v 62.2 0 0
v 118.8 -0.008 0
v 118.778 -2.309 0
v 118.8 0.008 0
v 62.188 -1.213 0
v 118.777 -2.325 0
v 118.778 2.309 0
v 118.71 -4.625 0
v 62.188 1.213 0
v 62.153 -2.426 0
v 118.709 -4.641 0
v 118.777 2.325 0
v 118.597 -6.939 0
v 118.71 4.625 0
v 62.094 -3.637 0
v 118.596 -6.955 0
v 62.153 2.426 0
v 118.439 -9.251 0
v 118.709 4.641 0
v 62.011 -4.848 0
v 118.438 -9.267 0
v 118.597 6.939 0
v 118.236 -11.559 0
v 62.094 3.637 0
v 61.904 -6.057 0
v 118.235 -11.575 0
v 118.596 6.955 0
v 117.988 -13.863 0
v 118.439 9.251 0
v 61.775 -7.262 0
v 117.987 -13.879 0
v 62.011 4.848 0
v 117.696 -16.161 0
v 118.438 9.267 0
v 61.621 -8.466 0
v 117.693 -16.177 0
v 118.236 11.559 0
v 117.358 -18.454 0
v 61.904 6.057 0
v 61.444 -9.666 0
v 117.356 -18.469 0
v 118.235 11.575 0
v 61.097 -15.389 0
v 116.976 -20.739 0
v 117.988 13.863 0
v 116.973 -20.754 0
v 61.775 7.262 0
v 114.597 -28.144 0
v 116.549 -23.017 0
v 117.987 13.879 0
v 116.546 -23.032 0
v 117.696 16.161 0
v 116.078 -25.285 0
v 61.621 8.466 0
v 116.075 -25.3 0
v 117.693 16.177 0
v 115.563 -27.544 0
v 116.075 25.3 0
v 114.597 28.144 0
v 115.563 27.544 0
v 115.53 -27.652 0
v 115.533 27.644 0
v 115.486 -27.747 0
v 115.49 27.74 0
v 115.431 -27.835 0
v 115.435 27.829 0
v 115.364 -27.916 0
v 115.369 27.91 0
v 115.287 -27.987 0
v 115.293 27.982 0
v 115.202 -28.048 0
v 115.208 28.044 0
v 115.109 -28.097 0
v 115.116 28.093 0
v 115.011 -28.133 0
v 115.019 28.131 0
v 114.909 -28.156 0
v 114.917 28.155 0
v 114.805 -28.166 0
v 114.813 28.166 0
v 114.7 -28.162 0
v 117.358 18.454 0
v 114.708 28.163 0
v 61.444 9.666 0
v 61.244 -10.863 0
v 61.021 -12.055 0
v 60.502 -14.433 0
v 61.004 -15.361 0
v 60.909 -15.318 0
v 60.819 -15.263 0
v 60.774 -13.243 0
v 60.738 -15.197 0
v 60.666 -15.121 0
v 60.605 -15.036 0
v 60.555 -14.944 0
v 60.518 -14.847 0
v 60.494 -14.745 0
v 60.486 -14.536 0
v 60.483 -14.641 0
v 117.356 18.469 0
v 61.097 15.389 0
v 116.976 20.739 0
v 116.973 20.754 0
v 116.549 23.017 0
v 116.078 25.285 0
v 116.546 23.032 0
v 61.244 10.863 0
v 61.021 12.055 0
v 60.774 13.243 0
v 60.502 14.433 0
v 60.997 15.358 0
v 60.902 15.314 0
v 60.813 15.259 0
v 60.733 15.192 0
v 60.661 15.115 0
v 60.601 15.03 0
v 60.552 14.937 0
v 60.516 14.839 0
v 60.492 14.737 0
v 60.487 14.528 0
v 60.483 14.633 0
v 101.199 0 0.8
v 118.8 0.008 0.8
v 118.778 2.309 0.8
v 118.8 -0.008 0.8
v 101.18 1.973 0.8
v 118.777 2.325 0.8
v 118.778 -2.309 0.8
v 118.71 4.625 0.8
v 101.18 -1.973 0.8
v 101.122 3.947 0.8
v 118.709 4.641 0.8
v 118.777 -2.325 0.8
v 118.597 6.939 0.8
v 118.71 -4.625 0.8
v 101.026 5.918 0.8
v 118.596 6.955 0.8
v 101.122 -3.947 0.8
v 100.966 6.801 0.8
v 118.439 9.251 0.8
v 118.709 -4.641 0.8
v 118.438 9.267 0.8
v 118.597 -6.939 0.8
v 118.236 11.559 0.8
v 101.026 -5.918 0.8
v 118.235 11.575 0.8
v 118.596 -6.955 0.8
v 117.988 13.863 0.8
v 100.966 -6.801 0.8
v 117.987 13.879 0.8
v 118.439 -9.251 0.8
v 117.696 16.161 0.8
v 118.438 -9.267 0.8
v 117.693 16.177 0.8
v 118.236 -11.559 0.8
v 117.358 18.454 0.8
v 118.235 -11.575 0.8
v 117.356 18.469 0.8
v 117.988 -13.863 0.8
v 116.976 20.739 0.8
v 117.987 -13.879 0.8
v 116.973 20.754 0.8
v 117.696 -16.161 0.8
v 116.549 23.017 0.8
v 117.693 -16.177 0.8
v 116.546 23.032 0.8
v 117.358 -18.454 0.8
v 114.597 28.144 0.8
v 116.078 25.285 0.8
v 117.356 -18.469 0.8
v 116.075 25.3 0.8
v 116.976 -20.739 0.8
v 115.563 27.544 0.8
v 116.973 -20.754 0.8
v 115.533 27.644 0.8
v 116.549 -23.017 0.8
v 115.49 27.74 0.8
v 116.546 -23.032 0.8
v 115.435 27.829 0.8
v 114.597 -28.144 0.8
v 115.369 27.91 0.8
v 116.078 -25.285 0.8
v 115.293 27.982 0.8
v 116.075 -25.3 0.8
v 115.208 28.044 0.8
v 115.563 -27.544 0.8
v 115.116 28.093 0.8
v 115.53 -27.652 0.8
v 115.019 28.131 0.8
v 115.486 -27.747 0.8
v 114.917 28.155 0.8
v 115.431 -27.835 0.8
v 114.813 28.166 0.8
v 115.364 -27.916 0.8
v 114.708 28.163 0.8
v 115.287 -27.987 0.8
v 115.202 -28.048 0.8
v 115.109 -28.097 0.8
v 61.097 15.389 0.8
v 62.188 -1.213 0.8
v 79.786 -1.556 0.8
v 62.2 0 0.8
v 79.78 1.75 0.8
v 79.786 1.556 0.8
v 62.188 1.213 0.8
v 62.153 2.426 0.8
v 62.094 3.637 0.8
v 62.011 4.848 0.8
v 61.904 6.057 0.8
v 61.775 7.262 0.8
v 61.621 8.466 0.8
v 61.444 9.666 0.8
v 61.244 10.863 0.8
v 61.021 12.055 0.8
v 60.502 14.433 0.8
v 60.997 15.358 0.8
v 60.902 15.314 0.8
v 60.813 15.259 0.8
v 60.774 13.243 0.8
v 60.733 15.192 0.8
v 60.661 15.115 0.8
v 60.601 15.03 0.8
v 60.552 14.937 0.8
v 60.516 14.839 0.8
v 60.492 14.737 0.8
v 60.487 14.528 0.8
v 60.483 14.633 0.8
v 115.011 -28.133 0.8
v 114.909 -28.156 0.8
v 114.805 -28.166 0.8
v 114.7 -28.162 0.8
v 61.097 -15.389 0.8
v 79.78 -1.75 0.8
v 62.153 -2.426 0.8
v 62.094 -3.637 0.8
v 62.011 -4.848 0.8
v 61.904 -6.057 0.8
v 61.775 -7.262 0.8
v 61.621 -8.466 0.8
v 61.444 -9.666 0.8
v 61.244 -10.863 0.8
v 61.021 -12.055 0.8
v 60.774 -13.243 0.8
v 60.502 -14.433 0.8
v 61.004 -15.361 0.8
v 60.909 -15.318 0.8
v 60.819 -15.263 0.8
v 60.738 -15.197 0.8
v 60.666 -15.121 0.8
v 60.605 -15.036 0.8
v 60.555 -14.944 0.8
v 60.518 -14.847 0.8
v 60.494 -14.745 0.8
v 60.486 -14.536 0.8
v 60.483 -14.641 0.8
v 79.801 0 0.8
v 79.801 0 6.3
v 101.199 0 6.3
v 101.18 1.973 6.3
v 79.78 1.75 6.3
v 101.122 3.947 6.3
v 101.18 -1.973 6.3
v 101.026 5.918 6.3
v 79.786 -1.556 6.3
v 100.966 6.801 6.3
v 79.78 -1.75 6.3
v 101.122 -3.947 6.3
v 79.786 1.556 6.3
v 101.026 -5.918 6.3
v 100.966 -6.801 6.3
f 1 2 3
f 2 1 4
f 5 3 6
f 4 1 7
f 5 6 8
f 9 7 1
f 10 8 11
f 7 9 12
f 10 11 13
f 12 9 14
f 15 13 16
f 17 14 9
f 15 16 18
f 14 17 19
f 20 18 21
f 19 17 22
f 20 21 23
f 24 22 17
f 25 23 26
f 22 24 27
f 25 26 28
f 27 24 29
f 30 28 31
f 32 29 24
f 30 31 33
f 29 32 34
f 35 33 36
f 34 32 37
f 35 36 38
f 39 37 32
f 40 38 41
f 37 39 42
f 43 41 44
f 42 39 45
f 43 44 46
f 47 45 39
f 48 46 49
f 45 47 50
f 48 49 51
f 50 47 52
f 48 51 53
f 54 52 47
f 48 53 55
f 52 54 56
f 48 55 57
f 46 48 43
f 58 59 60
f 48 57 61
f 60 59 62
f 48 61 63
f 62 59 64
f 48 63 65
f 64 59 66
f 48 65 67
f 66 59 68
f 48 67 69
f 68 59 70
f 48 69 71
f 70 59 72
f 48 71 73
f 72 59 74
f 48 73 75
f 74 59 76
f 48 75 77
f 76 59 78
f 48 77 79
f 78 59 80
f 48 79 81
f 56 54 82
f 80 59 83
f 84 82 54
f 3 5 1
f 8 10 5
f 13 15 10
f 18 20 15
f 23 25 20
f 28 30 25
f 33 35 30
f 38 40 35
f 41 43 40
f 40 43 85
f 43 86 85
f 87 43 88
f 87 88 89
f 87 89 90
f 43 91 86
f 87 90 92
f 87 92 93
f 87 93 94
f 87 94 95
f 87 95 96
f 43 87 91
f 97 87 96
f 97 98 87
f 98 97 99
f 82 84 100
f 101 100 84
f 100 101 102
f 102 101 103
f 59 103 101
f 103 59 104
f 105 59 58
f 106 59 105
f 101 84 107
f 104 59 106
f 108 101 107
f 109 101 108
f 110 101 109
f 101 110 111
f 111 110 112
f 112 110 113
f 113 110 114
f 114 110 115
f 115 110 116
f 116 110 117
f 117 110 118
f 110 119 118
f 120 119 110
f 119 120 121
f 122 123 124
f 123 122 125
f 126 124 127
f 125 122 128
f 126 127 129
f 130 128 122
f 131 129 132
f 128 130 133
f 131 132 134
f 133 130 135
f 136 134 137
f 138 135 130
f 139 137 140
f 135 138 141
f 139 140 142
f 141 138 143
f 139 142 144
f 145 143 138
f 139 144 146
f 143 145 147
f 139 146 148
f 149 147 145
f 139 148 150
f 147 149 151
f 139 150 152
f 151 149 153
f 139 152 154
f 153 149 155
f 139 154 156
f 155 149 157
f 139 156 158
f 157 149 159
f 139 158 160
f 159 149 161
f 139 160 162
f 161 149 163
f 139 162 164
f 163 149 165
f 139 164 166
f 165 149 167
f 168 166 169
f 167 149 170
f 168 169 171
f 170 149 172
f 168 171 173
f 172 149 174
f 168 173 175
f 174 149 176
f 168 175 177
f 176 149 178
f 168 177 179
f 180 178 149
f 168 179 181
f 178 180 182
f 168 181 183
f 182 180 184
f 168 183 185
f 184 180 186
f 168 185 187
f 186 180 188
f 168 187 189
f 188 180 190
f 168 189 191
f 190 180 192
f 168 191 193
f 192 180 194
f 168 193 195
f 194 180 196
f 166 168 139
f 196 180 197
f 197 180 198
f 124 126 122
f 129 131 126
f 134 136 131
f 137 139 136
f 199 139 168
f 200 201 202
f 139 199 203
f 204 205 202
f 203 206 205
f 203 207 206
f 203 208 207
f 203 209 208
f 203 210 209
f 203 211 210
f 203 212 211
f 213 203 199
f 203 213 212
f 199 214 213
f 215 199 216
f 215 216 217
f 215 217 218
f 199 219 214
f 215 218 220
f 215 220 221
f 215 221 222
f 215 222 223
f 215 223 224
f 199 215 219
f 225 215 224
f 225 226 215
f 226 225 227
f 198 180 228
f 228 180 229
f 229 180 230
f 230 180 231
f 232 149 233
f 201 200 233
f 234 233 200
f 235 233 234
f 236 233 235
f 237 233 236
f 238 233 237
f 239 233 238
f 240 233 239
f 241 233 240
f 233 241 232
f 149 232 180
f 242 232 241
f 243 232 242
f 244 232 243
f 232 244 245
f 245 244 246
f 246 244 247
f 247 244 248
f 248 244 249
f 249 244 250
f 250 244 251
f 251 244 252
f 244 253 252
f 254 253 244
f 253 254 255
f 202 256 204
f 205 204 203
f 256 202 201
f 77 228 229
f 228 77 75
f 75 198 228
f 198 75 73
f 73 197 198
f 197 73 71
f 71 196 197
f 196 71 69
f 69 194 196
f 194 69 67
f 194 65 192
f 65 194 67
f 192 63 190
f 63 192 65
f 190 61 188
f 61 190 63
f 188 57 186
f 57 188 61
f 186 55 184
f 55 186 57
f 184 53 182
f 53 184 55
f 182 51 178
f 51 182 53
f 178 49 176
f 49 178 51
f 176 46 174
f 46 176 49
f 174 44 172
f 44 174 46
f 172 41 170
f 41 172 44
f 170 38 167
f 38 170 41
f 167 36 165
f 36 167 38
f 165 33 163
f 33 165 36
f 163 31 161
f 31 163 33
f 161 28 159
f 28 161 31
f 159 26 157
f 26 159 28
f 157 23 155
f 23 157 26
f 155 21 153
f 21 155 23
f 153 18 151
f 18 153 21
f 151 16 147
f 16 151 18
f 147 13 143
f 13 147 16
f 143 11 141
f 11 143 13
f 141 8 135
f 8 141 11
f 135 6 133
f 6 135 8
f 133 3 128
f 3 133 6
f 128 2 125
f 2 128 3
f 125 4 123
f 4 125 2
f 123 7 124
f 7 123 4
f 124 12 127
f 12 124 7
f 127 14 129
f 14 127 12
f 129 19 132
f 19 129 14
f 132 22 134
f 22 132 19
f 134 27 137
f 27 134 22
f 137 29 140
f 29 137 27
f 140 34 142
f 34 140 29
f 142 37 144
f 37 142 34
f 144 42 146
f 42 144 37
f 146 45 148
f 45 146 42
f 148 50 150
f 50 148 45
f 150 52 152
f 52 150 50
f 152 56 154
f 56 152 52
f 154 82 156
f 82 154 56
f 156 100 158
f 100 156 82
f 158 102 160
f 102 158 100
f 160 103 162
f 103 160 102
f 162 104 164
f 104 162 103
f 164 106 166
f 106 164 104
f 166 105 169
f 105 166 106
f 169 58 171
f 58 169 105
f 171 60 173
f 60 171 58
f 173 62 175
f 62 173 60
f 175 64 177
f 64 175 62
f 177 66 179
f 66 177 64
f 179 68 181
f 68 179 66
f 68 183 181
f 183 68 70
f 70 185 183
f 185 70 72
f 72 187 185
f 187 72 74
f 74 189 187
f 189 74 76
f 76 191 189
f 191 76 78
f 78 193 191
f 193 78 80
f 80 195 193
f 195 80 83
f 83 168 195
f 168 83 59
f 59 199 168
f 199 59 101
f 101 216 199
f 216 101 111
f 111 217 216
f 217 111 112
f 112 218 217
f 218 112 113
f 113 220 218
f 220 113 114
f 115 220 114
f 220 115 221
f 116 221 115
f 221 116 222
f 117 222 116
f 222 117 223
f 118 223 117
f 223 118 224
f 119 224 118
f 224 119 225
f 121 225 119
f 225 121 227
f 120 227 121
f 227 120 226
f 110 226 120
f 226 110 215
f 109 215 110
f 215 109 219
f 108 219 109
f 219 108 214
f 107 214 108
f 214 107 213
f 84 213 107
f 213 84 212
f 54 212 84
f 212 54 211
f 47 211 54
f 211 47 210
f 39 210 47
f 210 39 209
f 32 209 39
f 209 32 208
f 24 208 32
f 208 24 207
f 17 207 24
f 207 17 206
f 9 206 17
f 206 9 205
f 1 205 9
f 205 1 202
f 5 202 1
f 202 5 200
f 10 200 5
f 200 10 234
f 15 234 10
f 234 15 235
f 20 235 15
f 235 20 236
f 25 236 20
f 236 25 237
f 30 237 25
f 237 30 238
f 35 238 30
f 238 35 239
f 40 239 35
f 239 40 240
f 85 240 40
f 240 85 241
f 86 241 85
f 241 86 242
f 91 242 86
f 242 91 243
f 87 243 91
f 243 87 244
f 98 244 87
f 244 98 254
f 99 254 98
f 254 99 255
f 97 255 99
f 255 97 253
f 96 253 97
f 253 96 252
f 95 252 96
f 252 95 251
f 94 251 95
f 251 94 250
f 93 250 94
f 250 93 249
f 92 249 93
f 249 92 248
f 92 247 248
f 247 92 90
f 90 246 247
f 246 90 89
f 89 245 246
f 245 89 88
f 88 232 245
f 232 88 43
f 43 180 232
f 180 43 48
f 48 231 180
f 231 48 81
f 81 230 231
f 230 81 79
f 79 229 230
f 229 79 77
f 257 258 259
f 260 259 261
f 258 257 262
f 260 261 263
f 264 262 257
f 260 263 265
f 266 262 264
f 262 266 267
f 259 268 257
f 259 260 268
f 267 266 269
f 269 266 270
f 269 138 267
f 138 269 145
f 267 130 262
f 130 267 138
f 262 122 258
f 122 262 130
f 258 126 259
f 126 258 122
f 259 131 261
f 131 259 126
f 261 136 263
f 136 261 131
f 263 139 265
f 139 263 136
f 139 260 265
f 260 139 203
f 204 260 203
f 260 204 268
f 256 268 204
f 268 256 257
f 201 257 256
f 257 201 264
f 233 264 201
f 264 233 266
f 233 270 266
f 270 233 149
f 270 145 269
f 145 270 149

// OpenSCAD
// Gen-DE — bobbin BASE (bottom flange + hub). Print x12, flange down. Wind 24 AWG x 252 t around
// the hub with the LID glued on (coil_lid.stl). Copper lives ONLY between the flanges (no proud winds).
include <parameters.scad>;
$fn = 48;
module sector_2d(r_in, r_out, ang) {
    polygon([
        for (a = [-ang/2 : ang/24 : ang/2]) [r_in*cos(a), r_in*sin(a)],
        for (a = [ang/2 : -ang/24 : -ang/2]) [r_out*cos(a), r_out*sin(a)]
    ]);
}
module footprint_2d() { offset(r=wall) sector_2d(coil_id_r, coil_od_r, span_deg); }
module hub_2d()       { offset(delta=-coil_core_inset) sector_2d(coil_id_r, coil_od_r, span_deg); }

union() {
    linear_extrude(flange_t) footprint_2d();
    translate([0, 0, flange_t - 0.01]) linear_extrude(former_web + 0.01) hub_2d();
}
